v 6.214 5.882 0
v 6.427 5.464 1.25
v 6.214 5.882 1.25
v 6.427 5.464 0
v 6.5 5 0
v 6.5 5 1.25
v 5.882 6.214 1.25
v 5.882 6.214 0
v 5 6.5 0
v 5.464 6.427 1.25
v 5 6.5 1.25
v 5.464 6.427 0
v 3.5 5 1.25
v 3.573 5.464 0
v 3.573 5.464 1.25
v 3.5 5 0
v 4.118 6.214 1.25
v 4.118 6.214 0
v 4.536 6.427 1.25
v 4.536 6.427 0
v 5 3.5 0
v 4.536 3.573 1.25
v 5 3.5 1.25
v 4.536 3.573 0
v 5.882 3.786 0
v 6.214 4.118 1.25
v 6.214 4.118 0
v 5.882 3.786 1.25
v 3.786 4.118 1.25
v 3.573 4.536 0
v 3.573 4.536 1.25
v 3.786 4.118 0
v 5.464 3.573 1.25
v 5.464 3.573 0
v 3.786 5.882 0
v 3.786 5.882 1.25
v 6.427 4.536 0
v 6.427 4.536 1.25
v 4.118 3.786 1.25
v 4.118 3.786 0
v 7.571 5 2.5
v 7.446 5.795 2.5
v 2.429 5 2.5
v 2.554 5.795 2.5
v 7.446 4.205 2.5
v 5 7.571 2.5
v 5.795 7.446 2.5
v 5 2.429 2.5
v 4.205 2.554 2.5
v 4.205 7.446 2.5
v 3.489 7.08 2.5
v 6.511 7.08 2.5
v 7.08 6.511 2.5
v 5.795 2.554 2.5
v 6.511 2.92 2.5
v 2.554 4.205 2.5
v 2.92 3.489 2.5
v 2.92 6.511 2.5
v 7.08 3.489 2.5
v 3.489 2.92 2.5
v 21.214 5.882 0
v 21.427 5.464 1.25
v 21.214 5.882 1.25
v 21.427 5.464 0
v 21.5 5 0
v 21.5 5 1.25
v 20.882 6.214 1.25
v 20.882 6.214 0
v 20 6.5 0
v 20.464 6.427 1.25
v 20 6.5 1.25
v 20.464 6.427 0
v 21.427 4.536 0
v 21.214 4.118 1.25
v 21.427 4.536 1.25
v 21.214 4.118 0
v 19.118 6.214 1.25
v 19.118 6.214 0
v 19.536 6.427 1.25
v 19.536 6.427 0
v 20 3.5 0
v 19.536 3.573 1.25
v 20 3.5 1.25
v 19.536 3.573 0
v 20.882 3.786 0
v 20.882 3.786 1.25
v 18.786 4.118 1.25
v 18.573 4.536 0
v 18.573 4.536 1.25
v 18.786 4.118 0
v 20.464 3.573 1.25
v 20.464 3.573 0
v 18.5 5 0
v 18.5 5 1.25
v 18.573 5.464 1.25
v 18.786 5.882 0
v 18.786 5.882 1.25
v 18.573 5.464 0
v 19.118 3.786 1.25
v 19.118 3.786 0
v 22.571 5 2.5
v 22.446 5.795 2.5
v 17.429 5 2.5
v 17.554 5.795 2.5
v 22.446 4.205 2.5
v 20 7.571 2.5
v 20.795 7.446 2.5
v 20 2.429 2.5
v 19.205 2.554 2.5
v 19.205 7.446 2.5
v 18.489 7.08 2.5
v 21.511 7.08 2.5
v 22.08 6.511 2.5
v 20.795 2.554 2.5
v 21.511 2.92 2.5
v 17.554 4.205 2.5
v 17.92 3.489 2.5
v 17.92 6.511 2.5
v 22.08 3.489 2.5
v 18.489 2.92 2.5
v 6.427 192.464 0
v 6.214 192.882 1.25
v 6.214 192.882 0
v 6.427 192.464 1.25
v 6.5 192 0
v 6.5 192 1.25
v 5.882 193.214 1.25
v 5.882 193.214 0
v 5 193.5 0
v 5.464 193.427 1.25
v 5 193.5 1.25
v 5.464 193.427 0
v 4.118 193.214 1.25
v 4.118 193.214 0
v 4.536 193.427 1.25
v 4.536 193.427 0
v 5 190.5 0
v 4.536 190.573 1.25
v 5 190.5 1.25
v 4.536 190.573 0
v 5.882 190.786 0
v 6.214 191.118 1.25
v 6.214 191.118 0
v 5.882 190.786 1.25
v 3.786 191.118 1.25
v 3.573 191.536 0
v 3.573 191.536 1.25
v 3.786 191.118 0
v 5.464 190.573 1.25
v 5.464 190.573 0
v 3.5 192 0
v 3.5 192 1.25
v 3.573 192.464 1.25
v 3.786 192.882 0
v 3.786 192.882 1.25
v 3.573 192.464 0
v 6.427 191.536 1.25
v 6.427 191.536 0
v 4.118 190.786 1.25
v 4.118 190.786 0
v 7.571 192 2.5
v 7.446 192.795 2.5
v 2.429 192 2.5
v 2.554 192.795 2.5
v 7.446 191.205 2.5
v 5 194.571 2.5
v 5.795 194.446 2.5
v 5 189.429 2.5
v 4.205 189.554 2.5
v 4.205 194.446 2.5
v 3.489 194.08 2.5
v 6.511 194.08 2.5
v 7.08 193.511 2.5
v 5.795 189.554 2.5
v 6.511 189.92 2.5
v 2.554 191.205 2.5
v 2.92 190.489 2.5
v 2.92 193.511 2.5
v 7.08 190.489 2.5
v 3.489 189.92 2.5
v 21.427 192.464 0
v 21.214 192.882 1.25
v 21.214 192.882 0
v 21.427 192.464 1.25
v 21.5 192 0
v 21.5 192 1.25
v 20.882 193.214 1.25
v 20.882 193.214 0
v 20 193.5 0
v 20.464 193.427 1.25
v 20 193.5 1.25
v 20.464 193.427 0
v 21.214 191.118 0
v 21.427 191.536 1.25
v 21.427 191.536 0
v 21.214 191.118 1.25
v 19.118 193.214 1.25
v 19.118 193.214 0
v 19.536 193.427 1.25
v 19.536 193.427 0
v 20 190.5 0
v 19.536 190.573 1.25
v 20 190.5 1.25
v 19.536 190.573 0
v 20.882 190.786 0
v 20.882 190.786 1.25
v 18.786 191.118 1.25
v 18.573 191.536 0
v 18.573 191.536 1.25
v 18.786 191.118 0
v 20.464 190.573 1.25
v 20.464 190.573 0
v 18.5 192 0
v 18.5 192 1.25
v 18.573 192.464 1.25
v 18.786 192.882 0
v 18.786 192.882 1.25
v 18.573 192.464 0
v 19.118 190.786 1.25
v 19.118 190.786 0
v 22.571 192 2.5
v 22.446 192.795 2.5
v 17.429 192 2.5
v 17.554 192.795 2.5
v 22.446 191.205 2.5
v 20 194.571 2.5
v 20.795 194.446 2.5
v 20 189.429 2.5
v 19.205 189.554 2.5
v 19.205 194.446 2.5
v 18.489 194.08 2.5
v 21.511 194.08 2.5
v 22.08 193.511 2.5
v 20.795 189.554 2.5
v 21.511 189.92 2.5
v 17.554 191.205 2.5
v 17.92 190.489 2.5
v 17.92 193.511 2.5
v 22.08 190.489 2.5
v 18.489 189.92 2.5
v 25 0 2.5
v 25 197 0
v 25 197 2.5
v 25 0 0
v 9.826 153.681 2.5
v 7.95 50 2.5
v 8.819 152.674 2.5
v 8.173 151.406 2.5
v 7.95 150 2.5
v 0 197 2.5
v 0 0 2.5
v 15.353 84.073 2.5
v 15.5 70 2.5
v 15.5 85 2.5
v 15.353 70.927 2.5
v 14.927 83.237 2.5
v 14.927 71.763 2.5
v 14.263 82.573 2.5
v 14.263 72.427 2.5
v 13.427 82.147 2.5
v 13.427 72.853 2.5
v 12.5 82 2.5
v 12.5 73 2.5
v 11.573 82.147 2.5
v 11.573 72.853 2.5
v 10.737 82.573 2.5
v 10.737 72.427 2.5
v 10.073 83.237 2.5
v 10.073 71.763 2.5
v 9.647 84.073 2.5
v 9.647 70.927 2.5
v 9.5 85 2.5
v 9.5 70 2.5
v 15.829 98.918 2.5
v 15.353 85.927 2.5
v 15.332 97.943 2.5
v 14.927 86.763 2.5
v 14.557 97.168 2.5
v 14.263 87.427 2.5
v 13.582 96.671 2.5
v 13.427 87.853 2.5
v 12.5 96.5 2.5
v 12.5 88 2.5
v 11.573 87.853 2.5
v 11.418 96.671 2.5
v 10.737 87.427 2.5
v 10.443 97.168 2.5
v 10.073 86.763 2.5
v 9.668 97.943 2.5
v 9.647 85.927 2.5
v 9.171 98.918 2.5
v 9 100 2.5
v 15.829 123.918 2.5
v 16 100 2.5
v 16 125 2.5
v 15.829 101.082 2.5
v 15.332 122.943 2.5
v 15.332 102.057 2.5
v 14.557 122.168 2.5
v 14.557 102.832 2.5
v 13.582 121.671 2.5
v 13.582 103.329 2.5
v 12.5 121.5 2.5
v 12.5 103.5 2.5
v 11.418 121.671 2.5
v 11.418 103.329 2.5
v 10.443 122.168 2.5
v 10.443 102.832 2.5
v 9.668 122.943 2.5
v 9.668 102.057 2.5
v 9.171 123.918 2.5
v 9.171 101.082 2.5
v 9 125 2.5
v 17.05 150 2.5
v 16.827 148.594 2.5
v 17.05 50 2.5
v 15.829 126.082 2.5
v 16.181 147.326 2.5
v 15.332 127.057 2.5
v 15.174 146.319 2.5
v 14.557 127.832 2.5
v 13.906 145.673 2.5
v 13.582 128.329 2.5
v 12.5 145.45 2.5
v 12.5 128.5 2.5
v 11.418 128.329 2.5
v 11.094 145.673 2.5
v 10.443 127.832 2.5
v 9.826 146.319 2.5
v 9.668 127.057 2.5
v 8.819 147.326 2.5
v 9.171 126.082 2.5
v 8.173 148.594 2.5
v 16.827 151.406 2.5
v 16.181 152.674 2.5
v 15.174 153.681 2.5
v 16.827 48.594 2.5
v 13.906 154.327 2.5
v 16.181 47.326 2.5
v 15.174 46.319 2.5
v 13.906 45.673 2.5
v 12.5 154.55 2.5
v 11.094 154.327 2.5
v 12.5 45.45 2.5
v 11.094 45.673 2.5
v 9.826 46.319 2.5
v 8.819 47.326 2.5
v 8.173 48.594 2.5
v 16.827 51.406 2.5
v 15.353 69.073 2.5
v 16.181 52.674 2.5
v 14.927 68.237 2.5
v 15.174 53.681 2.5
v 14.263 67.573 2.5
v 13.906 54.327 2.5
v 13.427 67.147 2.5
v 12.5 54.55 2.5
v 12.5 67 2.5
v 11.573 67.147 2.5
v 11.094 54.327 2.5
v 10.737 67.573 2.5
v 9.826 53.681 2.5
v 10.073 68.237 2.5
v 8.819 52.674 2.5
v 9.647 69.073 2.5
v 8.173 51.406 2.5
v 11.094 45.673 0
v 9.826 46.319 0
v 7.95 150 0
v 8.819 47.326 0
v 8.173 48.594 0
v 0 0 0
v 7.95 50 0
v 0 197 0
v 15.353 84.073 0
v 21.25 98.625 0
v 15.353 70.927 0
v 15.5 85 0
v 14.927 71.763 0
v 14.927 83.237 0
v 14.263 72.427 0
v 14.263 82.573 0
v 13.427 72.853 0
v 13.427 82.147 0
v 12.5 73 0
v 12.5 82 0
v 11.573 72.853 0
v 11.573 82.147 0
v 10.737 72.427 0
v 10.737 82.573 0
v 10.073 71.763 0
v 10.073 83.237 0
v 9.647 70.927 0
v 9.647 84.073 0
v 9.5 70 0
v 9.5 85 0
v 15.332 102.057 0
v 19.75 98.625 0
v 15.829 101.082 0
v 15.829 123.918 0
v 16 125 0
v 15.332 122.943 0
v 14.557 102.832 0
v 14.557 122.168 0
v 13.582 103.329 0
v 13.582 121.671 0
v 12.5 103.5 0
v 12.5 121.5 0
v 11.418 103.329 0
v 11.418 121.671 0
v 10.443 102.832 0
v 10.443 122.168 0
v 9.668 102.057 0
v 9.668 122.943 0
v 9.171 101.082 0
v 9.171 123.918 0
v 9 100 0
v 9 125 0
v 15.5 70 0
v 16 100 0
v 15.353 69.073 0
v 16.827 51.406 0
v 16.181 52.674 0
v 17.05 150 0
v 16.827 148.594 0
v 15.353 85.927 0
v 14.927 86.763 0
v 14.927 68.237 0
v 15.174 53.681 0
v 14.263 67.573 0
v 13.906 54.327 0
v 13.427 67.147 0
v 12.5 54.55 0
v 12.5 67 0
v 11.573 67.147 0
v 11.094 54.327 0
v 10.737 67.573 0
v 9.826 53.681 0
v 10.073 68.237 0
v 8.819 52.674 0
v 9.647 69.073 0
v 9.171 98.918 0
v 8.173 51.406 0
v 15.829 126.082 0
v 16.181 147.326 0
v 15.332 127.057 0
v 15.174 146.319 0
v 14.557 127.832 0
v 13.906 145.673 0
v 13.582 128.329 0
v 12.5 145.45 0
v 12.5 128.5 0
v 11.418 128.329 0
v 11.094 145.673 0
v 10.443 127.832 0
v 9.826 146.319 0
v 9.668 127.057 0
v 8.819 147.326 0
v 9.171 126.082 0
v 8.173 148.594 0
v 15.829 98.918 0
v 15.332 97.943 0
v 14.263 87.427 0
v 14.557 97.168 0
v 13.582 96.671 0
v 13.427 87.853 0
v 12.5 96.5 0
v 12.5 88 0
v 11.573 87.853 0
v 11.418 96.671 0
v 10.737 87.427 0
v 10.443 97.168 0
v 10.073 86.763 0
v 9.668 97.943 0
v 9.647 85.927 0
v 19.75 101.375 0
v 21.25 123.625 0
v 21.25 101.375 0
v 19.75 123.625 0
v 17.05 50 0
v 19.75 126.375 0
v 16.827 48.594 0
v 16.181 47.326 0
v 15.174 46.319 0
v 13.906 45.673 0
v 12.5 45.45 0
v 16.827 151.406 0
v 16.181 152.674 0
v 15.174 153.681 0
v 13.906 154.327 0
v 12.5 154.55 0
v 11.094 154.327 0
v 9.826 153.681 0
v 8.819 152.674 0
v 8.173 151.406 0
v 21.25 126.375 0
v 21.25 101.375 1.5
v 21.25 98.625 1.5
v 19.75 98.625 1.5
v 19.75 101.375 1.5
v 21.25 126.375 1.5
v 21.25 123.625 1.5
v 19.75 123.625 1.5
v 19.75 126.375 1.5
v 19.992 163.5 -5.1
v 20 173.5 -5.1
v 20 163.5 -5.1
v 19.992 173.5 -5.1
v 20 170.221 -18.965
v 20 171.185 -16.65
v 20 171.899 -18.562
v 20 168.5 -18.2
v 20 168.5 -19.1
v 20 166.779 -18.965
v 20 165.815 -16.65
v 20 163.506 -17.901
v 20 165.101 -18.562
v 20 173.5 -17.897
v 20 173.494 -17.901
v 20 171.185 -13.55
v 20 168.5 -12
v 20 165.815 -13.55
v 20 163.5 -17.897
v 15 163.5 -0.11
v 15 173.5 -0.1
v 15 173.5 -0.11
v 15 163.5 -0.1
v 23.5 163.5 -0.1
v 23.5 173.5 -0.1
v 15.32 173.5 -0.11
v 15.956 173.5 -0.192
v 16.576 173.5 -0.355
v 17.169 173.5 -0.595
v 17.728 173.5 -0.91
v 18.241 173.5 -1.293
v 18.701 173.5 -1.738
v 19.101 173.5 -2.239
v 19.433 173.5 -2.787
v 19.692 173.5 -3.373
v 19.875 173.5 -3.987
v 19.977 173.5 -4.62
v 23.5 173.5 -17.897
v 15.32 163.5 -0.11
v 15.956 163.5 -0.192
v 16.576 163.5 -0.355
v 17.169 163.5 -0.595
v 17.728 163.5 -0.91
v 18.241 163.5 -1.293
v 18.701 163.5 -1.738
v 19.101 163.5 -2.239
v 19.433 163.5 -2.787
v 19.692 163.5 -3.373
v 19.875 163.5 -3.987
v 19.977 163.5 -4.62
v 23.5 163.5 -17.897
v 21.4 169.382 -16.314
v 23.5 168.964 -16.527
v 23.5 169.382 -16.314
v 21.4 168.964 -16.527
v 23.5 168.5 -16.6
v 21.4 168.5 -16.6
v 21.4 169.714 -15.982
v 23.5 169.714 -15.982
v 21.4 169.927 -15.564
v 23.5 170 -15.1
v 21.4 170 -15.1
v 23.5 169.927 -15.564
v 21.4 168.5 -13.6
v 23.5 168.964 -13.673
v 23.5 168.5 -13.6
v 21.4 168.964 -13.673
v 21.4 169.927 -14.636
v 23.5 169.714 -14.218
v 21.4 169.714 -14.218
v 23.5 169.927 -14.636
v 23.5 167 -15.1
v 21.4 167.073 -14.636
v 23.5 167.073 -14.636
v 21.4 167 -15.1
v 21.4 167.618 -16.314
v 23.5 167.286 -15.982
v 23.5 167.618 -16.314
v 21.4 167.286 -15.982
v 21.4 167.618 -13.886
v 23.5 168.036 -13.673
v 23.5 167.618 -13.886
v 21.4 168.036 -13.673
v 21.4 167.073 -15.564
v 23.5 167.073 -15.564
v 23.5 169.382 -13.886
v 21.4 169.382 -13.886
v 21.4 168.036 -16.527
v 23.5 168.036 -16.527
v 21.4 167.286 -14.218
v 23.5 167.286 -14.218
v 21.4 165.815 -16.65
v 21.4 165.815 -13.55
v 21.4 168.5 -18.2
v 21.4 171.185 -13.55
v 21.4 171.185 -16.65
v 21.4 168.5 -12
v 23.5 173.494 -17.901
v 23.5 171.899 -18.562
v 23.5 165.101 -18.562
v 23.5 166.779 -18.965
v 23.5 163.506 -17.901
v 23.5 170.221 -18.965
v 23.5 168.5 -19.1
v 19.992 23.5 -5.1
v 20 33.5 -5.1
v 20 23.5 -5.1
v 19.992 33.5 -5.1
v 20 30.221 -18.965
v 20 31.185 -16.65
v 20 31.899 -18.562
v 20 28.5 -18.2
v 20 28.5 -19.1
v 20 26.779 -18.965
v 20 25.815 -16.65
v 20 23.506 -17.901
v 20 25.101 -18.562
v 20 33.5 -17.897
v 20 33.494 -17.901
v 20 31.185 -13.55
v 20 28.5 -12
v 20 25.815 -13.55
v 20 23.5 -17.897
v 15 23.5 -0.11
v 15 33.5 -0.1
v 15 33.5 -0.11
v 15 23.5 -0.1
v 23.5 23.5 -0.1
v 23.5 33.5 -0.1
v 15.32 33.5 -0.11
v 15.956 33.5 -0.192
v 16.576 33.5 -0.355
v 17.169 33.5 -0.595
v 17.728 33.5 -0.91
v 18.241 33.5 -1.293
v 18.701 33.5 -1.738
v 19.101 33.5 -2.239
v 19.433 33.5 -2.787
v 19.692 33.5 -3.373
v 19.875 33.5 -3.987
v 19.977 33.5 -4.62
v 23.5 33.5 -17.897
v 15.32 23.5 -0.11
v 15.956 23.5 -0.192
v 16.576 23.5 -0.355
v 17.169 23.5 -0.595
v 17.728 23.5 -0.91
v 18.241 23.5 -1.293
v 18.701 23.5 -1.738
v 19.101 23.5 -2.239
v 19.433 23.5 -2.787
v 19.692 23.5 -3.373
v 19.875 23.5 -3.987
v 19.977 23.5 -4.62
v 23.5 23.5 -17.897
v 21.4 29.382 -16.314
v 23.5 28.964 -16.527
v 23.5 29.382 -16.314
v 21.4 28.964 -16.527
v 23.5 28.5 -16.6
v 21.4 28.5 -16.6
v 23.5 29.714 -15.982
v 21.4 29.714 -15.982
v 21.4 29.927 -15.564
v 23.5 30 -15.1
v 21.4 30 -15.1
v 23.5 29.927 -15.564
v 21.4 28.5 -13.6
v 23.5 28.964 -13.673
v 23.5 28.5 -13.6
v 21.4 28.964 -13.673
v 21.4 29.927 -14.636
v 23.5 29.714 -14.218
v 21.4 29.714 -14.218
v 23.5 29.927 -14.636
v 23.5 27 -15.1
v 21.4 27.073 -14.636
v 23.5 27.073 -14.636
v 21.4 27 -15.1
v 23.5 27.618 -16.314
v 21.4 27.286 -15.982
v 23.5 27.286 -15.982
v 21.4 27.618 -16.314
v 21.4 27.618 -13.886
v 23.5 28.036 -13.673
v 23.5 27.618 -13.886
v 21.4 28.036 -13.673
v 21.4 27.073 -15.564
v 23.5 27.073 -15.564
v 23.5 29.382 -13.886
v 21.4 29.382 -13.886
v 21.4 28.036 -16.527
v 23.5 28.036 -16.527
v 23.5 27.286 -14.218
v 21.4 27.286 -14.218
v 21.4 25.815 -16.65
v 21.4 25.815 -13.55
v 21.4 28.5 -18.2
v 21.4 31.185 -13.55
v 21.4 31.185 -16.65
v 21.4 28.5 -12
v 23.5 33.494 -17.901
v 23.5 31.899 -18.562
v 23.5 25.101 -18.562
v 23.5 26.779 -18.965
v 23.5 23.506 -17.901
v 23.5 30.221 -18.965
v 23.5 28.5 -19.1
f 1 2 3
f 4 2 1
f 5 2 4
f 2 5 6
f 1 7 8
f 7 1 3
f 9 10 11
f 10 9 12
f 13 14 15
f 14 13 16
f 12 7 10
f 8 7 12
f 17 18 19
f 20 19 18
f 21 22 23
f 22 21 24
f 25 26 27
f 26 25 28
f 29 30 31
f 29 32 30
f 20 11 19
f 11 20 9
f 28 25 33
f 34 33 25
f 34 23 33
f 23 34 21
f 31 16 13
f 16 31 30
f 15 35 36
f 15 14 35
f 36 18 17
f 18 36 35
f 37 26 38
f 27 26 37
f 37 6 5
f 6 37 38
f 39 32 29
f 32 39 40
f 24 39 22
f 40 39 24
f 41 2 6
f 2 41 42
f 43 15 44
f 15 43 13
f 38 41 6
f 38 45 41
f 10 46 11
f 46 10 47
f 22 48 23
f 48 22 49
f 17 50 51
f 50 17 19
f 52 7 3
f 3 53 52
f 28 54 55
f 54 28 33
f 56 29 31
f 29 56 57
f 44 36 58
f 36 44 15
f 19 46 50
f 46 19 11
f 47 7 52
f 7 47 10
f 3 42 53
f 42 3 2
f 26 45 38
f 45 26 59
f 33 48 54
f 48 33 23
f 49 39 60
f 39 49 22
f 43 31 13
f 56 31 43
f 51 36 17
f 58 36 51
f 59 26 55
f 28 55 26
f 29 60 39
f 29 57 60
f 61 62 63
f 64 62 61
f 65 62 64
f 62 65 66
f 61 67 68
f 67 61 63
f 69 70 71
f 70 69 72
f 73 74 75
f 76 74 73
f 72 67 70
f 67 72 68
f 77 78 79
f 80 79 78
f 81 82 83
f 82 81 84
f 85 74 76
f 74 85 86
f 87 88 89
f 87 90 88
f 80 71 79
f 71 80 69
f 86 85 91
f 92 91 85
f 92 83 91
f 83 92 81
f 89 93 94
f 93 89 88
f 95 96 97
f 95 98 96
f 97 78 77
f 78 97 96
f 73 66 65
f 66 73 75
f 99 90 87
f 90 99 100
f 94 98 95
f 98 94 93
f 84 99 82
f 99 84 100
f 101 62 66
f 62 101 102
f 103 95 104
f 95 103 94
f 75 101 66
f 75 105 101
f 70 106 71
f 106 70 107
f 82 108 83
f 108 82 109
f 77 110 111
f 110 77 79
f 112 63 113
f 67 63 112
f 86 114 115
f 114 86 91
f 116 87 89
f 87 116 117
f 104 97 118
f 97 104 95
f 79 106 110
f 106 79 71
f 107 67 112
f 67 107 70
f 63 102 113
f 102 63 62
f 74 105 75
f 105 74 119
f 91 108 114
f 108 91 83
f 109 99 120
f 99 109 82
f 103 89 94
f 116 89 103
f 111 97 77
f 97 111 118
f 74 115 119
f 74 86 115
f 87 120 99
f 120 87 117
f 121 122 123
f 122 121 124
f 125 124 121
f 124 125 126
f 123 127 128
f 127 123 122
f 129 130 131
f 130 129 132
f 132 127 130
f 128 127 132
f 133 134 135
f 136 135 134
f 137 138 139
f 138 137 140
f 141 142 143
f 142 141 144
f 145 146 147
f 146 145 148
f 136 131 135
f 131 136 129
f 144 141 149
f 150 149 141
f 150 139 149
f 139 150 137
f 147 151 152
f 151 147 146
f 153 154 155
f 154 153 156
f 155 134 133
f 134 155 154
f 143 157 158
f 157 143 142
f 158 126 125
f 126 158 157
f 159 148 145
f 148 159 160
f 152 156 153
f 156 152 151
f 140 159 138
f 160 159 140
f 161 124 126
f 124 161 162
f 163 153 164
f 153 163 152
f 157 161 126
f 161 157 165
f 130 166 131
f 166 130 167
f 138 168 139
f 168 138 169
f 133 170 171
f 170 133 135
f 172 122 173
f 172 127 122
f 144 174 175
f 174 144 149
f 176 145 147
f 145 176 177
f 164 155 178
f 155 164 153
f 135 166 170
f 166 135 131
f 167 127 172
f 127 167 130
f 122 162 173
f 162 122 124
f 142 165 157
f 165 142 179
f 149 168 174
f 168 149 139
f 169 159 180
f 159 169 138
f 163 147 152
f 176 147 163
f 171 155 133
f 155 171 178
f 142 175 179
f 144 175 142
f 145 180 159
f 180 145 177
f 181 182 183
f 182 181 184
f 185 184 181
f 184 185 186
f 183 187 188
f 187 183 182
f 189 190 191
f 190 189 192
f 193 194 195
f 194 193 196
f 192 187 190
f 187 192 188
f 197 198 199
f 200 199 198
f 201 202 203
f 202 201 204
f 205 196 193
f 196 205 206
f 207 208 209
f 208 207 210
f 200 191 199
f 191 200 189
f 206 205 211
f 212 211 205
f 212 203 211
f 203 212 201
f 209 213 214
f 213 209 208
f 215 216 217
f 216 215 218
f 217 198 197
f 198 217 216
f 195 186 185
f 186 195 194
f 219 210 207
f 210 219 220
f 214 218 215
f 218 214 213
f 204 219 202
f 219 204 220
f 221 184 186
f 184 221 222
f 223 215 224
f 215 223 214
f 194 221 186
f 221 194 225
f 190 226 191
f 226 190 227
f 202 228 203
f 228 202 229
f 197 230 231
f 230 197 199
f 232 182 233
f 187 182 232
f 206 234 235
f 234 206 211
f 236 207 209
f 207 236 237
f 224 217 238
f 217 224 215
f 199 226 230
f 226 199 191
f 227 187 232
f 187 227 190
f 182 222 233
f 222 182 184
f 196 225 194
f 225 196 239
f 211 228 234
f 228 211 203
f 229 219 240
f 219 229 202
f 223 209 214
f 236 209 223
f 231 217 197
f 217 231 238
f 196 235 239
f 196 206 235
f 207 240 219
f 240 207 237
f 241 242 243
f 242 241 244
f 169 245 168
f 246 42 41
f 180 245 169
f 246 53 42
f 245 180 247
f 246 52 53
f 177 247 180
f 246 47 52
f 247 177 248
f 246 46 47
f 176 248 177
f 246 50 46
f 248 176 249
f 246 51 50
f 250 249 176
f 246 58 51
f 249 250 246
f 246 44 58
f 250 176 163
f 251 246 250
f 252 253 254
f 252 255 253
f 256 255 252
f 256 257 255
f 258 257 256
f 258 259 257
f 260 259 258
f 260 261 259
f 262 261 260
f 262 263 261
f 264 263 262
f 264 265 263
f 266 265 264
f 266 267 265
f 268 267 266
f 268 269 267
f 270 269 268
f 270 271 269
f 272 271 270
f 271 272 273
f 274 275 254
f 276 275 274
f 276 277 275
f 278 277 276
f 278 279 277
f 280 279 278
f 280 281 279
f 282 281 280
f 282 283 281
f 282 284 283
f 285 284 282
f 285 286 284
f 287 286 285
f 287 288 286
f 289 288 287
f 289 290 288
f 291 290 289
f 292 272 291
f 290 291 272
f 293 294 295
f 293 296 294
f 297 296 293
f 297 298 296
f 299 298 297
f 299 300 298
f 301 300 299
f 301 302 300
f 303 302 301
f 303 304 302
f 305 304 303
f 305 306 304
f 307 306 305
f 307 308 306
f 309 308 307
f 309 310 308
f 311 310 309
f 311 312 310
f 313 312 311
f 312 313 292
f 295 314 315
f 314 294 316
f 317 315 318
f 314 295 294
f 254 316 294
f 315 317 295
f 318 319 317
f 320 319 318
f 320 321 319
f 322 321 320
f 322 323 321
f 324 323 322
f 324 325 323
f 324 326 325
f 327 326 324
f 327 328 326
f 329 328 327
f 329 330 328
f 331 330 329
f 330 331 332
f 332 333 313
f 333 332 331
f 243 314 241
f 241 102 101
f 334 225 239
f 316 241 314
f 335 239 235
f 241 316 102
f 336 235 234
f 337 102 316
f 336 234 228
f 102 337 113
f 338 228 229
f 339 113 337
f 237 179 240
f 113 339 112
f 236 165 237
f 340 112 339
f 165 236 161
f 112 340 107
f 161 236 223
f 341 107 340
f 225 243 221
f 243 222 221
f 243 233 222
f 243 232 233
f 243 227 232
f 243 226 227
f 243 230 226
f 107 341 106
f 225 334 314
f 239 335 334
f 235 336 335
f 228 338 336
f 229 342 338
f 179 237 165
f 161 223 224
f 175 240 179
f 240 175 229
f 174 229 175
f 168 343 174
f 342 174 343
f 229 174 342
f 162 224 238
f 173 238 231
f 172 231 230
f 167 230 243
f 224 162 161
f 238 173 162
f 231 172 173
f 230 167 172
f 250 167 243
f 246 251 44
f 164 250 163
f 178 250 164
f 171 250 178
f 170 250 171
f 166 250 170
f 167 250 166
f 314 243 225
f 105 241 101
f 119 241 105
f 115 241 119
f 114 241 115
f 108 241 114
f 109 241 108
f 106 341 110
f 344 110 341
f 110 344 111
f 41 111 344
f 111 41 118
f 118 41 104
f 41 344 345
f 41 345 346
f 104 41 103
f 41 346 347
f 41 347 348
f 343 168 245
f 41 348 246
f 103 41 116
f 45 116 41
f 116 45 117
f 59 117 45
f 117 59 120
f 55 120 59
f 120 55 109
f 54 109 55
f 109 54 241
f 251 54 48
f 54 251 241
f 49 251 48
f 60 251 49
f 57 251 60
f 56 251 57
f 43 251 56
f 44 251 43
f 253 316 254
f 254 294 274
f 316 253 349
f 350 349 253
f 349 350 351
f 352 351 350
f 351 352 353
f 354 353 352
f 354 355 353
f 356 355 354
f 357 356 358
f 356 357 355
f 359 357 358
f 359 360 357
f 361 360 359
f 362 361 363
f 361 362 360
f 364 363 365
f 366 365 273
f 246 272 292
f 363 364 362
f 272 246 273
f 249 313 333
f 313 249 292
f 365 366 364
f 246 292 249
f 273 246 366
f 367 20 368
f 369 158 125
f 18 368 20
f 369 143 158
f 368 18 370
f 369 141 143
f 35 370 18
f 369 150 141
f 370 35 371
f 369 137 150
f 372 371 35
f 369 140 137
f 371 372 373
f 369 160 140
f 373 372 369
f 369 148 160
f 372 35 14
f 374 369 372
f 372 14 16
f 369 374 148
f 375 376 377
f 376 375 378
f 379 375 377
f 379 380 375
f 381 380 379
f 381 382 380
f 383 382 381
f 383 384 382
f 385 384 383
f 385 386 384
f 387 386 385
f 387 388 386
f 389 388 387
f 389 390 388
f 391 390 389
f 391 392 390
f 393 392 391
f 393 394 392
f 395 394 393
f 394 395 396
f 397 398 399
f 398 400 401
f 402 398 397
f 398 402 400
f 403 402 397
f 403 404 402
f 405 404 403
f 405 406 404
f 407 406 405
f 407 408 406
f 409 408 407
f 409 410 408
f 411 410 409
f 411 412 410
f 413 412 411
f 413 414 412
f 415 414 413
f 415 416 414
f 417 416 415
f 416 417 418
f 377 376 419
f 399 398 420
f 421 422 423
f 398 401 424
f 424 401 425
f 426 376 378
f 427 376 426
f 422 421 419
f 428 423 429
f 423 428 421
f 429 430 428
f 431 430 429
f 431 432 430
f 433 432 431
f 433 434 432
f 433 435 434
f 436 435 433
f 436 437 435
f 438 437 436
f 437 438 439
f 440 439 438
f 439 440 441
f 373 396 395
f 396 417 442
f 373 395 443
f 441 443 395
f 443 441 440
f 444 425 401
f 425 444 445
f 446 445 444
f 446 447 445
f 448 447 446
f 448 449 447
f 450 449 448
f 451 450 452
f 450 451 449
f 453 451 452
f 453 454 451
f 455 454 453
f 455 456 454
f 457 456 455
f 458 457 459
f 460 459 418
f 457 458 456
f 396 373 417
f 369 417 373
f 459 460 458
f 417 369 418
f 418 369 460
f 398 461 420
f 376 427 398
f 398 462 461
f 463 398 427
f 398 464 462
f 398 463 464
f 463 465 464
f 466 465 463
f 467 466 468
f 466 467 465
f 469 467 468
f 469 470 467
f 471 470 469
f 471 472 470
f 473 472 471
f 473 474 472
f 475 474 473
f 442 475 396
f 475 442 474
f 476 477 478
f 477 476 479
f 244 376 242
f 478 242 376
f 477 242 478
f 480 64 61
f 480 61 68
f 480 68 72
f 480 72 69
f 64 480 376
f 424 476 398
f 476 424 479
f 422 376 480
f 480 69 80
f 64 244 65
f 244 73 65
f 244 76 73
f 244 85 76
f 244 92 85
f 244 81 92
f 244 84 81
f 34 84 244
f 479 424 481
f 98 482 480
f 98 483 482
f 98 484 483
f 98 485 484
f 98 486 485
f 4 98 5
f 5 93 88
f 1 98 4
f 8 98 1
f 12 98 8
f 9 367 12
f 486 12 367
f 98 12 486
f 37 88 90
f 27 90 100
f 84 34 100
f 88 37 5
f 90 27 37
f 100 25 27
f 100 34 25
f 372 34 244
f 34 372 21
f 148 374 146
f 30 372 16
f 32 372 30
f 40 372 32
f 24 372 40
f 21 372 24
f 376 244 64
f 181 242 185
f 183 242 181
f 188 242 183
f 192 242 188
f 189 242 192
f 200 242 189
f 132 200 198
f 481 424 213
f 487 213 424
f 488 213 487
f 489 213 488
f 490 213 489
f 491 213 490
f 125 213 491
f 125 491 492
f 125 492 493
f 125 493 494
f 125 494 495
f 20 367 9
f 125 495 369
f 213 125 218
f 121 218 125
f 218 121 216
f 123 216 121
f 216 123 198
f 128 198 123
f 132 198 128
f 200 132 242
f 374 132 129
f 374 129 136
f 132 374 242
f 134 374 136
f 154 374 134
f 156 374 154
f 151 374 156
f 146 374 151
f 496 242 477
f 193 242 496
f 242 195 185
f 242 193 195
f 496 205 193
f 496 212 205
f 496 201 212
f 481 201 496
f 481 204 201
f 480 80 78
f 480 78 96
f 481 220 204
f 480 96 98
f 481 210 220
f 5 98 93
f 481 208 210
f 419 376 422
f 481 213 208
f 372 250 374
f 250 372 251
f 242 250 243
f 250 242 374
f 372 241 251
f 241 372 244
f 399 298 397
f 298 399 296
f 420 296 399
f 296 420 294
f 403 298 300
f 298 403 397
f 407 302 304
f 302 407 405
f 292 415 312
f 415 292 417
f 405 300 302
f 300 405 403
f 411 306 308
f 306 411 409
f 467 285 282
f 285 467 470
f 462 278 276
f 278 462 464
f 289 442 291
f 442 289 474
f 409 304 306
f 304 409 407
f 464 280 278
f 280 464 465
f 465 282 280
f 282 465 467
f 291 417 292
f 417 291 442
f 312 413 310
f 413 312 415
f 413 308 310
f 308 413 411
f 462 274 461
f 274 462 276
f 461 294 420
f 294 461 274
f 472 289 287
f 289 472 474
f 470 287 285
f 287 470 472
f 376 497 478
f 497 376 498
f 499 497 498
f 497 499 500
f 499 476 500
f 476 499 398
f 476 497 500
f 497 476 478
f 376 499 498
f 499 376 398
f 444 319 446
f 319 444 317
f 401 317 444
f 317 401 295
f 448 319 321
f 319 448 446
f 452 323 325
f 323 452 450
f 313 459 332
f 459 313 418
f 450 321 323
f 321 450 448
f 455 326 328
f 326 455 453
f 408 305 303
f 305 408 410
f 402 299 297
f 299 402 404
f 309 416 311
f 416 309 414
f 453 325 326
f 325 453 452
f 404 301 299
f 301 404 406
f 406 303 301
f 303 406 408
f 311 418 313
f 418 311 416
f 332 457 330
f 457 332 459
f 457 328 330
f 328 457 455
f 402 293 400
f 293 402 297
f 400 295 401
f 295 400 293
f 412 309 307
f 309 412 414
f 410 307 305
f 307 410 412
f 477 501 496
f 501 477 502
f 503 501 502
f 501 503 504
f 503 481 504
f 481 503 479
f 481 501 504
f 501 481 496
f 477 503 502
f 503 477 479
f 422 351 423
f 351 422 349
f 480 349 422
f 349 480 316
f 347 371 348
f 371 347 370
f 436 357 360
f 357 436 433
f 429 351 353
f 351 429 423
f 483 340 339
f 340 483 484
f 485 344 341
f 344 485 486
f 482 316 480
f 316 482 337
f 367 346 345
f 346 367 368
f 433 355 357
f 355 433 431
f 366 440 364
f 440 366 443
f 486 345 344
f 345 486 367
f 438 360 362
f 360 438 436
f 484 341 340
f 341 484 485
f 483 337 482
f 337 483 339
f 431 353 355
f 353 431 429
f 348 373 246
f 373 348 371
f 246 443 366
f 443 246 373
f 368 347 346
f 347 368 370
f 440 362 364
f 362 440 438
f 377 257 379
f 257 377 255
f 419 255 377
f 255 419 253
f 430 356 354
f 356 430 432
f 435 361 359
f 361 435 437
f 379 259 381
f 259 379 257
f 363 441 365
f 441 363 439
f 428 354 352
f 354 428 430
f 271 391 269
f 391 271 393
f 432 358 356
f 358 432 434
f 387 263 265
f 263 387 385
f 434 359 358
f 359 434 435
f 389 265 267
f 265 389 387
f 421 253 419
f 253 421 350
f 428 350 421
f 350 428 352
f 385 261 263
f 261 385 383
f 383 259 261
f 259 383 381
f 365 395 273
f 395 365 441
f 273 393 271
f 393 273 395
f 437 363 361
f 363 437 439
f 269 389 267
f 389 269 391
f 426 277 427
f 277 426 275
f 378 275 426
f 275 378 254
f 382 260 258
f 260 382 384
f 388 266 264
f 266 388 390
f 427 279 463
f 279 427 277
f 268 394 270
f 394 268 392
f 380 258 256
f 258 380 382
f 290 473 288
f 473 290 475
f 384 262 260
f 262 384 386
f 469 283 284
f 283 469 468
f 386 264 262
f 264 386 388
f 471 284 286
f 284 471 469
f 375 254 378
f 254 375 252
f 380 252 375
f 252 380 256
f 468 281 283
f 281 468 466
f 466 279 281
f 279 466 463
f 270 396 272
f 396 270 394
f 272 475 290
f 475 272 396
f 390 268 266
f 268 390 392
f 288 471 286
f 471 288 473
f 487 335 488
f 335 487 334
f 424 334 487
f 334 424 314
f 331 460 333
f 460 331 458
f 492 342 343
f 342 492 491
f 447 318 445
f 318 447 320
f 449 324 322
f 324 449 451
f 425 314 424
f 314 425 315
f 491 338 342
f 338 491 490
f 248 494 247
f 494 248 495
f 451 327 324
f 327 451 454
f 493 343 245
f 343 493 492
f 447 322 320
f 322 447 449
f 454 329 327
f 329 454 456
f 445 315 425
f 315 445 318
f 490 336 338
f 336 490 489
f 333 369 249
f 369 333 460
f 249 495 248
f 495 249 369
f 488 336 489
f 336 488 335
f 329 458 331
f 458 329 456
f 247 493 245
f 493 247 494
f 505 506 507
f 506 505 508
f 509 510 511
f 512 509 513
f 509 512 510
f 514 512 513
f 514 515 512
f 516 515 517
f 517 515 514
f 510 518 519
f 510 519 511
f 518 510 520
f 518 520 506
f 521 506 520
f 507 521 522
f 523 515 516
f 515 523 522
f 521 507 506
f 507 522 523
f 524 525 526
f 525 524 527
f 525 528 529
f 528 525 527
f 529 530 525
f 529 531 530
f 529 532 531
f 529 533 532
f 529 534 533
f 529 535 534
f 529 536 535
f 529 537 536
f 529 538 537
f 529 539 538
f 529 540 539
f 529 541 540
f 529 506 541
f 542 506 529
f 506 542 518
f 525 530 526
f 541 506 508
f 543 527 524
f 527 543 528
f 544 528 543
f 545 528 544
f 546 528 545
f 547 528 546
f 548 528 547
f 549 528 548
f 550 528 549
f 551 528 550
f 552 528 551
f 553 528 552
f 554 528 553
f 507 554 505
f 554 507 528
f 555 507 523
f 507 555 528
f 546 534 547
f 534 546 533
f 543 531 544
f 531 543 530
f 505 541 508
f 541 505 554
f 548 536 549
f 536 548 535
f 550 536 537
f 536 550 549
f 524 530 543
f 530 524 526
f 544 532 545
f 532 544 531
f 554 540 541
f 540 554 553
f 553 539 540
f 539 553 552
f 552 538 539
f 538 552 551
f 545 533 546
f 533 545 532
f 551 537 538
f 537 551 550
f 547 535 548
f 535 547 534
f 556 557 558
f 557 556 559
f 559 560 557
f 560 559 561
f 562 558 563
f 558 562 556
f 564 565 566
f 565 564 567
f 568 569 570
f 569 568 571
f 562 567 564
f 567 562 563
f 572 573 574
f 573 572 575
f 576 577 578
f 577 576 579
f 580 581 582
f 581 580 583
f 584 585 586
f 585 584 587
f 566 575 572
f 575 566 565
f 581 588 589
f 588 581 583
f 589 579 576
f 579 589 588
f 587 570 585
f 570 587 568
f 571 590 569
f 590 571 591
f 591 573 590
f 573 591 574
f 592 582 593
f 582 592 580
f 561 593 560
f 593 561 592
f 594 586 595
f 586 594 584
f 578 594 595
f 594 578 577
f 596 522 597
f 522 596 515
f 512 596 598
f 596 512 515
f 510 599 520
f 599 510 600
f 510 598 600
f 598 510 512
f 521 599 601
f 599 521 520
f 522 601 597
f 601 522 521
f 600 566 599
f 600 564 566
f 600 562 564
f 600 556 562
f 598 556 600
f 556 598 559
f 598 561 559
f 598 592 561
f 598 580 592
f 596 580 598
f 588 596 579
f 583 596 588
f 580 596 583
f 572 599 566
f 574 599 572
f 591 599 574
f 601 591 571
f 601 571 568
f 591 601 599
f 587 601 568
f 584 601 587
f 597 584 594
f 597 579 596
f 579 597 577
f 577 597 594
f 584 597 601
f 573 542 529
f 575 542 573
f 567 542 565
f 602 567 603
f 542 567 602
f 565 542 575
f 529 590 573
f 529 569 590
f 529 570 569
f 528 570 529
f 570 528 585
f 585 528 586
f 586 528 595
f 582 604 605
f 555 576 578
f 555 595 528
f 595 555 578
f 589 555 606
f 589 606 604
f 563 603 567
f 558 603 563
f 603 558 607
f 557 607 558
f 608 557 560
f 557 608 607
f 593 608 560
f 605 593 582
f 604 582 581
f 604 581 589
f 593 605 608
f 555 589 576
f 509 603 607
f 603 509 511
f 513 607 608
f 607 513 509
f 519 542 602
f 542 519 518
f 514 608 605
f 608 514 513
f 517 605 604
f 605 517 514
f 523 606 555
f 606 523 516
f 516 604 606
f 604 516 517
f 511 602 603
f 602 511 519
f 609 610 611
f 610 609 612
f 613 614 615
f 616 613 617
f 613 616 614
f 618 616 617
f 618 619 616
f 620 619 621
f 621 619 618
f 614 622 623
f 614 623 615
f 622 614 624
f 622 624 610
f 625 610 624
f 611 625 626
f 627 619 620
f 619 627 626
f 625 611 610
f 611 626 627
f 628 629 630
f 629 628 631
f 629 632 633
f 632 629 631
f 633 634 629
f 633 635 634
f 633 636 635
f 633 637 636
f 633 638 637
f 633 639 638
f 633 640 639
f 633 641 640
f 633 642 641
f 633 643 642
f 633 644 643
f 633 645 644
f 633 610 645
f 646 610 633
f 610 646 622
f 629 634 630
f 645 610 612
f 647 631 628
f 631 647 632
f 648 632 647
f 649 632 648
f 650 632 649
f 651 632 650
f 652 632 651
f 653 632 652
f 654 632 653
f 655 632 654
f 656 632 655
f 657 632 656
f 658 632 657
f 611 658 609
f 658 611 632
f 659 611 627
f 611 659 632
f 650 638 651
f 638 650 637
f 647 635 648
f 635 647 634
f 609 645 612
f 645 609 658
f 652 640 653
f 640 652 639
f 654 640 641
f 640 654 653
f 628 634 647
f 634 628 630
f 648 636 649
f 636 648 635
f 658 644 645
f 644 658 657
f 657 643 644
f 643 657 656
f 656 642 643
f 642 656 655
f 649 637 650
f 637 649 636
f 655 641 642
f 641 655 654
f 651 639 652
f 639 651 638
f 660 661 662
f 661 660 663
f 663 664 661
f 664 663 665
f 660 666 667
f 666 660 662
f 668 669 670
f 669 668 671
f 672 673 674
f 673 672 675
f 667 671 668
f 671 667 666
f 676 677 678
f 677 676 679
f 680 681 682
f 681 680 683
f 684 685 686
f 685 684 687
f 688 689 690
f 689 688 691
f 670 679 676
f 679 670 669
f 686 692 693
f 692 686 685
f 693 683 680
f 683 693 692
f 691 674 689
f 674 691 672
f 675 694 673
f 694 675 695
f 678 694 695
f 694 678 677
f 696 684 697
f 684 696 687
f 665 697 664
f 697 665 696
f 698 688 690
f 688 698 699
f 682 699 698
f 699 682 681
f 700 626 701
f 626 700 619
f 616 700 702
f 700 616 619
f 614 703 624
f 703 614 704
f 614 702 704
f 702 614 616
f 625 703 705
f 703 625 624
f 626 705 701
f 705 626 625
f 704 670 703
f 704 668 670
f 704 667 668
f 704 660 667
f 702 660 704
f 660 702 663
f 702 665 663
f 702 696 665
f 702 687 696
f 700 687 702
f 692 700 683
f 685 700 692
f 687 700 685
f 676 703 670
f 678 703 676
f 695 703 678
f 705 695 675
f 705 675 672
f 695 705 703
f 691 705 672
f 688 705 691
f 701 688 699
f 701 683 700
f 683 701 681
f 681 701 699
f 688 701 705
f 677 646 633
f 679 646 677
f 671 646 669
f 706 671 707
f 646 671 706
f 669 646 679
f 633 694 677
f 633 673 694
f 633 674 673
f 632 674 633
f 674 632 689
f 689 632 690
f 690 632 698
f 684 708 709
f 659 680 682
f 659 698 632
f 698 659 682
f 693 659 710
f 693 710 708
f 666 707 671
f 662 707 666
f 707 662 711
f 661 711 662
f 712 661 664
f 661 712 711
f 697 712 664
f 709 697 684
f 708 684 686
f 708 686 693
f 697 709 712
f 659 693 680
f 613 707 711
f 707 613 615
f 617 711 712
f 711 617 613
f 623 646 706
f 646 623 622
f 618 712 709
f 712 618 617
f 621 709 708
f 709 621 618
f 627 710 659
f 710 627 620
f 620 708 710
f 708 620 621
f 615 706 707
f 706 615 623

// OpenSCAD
// file: kosmo.scad
panelHeight = 197;
thickness = 2.5;
mountHoleDiameter = 3.0;
jackHoleDiameter = 9.1;
ledHoleDiameter = 5;
pushButtonHoleDiameter = 7;
potHoleDiameter = 7;
switchHoleDiameter = 6;
rotarySwitchHoleDiameter = 9.1;
midiSocketHoleDiameter = 15;
colPaddingLeft = 20;
colPaddingRight = 10;
rowPadding = 30;

offsetTopBottom = 20; // Mounting area

n_rows = 6;
n_cols = width / 25;

rowsStart = rowPadding;
rowsEnd = panelHeight - rowPadding;

colsStart = colPaddingRight;
colsEnd = width - colPaddingLeft;


function row (i) = rowsStart + i * (rowsEnd - rowsStart) / (n_rows - 1);
function col (i) = colsStart + i * (colsEnd - colsStart) / (n_cols - 1);

module pcbHolders(){
  pcbHolder(width-5, panelHeight/2 + 140/2 - 5);
  pcbHolder(width-5, panelHeight/2 - 140/2 - 5);
}


module pcbHolder(x, y){
  pcbHole = 3;
  w = 10;
  h = 20;
  clearance = 15; // distance between panel and PCB hole
    
  translate([x, y, -0.1]) { // prevent gap
    rotate([0, 90, 0]) {
      union() {
        difference() {
          translate([0, 0, -5]) {               
            cube([5,w,5]);
          }
          translate([5, w+1, -5]) {
            rotate([90, 0, 0]) {
              cylinder(r=5, h=w+2,$fn=49);
            }
          }
        }
        /**/
        intersection() {
          difference() {
            cube([h, w, thickness+1]);
            translate([clearance, w/2, -0.9]){
              cylinder(r=pcbHole/2,  h=thickness+2, $fn=20);
              cylinder(r=3.1, h=2.3, $fn=6);
            }
          }
          translate([h/2-2, w/2, -1]) {
            cylinder(r=w+1, h=thickness+2, $fn=40);
          }
        }
        /**/
      }
    }
  }
}



module kosmoMountHoles(width, height) {
  punchHole(5, 5, mountHoleDiameter,true);
  punchHole((width-5), 5, mountHoleDiameter,true);
  punchHole(5, (height-5), mountHoleDiameter,true);
  punchHole((width-5), (height-5), mountHoleDiameter,true);
}


module punchHole(x, y, holeSize,chamfer=false){
  translate([x, y, -1]){
    cylinder(r=holeSize/2, h=thickness+2, $fn=20);
    if(chamfer) {
      translate([0, 0, 0.5]){
        cylinder(r2=holeSize, r1=0, h=holeSize+0.5, $fn=20);
      }
    }
  }
}

module midiSocket(x, y) {
    punchHole(x, y, midiSocketHoleDiameter);
}
module led(x, y) {
    punchHole(x, y, ledHoleDiameter);
}
module switch(x, y) { 
    punchHole(x, y, switchHoleDiameter);
}
module pushButton(x, y) { 
    punchHole(x, y, pushButtonHoleDiameter);
}
module rotarySwitch(x, y) { 
    punchHole(x, y, rotarySwitchHoleDiameter);
}
module sevenSegmentDisplay(x, y) {
    translate([x-6.5, y-9.6, -1]){
        cube([13, 19.2, thickness+2]);
    }
}

module pot(x, y) {
  translate([x, y , 0]) {
    union() {
      punchHole(0, 0, potHoleDiameter);
      translate([7.25, -2.75/2, -0.1]) {
        cube([1.5, 2.75, 1.6]);
      }
    }
  }
  echo(concat("pot at ", x, y));
}

module jack(x, y){
  punchHole(x, y, jackHoleDiameter);
    echo(concat("Jack at", x, y));
}

module panel(width) {
  difference() {
    cube([width, panelHeight, thickness]);
    kosmoMountHoles(width, panelHeight);
  }
}
// main file
width = 25;
include <kosmo.scad>
colPaddingLeft = 0;
colPaddingRight = 0;
n_rows = 6;
n_cols = 1;

 difference() {
     panel(width);
      
    
     
     jack( 12.5, 50); // Gate in
     
     switch( 12.5, 70); // INV 
     switch( 12.5, 85); // LIN/LOG
     
     pot( 12.5, 100); // OFFSET
     
     pot( 12.5, 125); // SLEW RATE
     
     jack( 12.5, 150); // OUT     
     
 }
pcbHolders();
